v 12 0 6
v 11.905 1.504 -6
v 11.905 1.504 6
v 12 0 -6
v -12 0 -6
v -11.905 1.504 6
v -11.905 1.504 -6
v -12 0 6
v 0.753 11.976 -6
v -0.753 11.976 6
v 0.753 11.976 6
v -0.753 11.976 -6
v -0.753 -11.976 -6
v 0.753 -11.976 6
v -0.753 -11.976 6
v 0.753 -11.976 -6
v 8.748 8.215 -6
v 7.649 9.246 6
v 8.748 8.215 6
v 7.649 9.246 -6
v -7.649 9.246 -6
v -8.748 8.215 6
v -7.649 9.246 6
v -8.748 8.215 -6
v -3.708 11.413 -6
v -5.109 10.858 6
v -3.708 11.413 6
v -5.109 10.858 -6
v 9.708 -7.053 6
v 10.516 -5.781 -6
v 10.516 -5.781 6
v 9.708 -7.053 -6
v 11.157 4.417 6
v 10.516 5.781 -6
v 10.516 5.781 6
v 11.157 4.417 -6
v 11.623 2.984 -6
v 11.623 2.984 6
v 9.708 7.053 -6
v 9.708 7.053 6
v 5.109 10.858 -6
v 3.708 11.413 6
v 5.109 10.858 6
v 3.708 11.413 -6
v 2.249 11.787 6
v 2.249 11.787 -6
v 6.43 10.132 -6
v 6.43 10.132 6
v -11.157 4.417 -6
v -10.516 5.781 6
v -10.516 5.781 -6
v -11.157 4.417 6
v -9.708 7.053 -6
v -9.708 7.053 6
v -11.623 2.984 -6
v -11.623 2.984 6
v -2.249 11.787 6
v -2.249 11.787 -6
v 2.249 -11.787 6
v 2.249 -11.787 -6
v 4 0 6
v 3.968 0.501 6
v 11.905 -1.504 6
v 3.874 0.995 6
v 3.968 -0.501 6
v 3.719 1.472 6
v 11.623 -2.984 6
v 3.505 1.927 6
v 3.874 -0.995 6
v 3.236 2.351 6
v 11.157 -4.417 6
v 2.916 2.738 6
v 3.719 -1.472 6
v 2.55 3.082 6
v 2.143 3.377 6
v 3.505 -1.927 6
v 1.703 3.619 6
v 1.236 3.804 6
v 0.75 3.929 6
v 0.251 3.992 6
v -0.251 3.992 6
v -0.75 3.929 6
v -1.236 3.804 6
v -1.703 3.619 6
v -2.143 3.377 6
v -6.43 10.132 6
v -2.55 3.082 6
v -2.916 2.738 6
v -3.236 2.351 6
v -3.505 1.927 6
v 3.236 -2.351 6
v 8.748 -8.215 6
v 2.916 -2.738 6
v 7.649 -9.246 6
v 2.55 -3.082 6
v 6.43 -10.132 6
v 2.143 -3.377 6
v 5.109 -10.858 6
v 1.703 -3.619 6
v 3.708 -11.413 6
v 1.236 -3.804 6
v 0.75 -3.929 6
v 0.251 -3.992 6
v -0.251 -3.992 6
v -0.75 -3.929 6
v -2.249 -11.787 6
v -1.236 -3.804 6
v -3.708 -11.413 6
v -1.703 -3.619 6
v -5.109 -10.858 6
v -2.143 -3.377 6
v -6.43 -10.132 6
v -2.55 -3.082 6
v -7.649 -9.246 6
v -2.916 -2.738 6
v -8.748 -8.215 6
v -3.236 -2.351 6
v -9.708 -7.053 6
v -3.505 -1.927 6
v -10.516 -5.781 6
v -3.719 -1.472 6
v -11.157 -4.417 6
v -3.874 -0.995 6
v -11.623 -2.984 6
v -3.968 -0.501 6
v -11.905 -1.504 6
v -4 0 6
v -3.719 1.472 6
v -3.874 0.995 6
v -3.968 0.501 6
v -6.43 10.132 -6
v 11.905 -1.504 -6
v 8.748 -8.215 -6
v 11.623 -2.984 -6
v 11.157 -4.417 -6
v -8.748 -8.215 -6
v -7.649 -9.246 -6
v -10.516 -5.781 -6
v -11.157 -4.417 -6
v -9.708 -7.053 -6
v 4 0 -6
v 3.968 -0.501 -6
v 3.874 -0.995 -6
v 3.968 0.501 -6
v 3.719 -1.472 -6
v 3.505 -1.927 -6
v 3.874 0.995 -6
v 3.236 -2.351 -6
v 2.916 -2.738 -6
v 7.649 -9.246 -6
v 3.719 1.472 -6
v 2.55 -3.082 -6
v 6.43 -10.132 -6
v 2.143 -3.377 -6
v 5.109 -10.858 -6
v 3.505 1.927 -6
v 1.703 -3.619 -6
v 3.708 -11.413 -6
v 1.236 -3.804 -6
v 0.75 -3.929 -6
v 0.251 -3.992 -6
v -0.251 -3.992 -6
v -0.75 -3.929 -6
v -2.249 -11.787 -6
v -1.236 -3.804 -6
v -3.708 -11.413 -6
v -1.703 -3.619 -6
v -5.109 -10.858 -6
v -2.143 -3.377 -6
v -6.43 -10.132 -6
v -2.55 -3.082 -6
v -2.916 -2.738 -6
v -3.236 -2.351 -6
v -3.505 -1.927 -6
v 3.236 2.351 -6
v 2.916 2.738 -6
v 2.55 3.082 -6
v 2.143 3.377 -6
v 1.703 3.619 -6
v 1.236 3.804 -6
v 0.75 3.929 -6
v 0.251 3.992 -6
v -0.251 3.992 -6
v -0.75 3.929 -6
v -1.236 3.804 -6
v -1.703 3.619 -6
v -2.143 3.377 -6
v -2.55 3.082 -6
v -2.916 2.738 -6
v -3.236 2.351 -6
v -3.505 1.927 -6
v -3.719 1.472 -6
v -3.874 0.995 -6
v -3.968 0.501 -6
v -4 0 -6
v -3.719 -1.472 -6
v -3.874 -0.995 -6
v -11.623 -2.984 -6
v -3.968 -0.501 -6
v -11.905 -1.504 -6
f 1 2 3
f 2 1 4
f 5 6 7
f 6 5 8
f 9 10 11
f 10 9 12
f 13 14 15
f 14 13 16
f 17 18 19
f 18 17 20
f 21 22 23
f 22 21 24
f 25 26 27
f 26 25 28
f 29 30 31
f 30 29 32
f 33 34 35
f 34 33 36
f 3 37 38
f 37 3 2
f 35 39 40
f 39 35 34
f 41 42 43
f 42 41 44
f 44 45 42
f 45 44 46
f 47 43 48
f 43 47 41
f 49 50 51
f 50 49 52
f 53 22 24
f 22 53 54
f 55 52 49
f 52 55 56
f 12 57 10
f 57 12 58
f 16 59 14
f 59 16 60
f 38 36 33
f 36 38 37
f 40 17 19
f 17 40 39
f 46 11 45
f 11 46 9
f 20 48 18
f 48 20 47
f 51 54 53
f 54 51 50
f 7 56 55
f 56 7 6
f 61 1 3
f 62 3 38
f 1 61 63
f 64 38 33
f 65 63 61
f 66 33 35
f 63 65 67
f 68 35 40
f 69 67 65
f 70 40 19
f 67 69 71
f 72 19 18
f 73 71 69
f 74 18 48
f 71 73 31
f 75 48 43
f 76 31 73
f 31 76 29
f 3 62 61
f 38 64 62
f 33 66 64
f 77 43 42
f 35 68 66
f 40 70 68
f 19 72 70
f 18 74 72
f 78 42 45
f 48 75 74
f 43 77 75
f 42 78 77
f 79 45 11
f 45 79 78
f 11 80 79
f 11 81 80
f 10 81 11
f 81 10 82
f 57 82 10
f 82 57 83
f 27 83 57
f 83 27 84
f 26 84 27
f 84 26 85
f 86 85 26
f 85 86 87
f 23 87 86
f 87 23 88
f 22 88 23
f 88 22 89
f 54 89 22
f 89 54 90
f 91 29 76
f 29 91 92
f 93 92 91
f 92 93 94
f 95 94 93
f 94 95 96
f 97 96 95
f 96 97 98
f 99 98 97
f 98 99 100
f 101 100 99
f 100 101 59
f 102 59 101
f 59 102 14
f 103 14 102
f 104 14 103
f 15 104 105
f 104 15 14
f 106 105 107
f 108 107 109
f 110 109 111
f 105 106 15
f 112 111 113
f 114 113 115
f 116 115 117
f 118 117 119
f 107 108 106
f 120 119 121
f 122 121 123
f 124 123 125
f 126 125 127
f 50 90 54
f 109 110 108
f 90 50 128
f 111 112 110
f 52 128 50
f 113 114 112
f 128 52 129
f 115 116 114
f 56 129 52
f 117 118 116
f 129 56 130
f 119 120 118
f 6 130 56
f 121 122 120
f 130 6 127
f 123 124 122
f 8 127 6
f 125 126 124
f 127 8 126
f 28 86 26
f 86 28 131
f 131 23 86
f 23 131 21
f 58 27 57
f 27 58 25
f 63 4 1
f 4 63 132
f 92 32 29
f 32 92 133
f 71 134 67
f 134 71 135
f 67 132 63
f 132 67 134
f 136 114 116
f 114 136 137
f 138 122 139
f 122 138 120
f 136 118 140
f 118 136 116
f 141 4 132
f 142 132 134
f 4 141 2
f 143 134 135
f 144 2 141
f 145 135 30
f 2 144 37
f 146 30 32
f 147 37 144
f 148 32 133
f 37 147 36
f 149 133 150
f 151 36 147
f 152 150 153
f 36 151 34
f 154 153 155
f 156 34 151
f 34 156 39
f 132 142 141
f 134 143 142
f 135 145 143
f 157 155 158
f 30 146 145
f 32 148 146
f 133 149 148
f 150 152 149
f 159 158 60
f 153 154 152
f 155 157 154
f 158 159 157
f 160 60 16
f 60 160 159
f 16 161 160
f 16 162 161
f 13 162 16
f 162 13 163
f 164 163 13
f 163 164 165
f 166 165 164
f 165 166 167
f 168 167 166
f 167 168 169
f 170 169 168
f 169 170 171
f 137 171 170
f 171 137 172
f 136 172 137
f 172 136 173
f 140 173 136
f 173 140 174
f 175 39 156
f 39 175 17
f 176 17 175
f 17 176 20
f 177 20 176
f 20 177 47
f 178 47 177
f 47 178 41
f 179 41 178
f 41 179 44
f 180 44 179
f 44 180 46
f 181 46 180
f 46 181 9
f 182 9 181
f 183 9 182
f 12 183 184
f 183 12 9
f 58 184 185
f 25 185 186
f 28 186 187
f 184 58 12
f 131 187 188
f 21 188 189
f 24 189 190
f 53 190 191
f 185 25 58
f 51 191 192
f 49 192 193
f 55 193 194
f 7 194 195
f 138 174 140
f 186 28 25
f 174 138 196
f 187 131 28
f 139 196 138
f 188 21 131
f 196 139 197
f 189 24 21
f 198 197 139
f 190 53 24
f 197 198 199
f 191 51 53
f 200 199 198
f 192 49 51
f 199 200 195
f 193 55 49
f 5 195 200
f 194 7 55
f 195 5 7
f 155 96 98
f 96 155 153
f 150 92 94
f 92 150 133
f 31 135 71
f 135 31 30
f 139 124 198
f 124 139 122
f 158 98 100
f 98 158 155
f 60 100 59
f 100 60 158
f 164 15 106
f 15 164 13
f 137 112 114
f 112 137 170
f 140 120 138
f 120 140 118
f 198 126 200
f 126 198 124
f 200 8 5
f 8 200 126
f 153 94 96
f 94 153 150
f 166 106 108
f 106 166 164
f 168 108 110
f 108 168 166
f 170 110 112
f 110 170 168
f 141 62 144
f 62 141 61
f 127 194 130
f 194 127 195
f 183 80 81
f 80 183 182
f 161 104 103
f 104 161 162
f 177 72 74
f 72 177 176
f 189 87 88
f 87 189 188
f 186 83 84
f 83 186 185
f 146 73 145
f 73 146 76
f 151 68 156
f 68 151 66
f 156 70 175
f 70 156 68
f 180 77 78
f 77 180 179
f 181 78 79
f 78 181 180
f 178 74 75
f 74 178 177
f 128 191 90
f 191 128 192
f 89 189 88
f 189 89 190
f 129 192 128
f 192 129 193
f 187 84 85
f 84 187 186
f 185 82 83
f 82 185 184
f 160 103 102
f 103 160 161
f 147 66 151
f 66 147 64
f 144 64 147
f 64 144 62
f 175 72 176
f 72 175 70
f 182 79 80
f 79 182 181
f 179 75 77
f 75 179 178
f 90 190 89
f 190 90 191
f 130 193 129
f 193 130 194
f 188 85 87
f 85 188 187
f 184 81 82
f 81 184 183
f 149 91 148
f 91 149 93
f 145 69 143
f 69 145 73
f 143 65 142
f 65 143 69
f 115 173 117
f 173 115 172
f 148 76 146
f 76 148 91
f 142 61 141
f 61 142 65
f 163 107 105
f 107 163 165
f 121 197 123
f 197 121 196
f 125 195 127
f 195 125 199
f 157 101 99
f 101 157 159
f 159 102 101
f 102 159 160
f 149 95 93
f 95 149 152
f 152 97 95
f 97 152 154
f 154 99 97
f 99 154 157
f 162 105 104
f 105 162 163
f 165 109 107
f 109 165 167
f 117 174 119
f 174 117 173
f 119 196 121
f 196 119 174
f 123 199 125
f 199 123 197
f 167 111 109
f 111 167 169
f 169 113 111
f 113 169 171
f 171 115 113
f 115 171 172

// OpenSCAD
$fn = 50;


difference() {
	union() {
		translate(v = [0, 0, -6.0000000000]) {
			cylinder(h = 12, r = 12.0000000000);
		}
	}
	union() {
		translate(v = [0, 0, -100.0000000000]) {
			cylinder(h = 200, r = 4);
		}
	}
}
